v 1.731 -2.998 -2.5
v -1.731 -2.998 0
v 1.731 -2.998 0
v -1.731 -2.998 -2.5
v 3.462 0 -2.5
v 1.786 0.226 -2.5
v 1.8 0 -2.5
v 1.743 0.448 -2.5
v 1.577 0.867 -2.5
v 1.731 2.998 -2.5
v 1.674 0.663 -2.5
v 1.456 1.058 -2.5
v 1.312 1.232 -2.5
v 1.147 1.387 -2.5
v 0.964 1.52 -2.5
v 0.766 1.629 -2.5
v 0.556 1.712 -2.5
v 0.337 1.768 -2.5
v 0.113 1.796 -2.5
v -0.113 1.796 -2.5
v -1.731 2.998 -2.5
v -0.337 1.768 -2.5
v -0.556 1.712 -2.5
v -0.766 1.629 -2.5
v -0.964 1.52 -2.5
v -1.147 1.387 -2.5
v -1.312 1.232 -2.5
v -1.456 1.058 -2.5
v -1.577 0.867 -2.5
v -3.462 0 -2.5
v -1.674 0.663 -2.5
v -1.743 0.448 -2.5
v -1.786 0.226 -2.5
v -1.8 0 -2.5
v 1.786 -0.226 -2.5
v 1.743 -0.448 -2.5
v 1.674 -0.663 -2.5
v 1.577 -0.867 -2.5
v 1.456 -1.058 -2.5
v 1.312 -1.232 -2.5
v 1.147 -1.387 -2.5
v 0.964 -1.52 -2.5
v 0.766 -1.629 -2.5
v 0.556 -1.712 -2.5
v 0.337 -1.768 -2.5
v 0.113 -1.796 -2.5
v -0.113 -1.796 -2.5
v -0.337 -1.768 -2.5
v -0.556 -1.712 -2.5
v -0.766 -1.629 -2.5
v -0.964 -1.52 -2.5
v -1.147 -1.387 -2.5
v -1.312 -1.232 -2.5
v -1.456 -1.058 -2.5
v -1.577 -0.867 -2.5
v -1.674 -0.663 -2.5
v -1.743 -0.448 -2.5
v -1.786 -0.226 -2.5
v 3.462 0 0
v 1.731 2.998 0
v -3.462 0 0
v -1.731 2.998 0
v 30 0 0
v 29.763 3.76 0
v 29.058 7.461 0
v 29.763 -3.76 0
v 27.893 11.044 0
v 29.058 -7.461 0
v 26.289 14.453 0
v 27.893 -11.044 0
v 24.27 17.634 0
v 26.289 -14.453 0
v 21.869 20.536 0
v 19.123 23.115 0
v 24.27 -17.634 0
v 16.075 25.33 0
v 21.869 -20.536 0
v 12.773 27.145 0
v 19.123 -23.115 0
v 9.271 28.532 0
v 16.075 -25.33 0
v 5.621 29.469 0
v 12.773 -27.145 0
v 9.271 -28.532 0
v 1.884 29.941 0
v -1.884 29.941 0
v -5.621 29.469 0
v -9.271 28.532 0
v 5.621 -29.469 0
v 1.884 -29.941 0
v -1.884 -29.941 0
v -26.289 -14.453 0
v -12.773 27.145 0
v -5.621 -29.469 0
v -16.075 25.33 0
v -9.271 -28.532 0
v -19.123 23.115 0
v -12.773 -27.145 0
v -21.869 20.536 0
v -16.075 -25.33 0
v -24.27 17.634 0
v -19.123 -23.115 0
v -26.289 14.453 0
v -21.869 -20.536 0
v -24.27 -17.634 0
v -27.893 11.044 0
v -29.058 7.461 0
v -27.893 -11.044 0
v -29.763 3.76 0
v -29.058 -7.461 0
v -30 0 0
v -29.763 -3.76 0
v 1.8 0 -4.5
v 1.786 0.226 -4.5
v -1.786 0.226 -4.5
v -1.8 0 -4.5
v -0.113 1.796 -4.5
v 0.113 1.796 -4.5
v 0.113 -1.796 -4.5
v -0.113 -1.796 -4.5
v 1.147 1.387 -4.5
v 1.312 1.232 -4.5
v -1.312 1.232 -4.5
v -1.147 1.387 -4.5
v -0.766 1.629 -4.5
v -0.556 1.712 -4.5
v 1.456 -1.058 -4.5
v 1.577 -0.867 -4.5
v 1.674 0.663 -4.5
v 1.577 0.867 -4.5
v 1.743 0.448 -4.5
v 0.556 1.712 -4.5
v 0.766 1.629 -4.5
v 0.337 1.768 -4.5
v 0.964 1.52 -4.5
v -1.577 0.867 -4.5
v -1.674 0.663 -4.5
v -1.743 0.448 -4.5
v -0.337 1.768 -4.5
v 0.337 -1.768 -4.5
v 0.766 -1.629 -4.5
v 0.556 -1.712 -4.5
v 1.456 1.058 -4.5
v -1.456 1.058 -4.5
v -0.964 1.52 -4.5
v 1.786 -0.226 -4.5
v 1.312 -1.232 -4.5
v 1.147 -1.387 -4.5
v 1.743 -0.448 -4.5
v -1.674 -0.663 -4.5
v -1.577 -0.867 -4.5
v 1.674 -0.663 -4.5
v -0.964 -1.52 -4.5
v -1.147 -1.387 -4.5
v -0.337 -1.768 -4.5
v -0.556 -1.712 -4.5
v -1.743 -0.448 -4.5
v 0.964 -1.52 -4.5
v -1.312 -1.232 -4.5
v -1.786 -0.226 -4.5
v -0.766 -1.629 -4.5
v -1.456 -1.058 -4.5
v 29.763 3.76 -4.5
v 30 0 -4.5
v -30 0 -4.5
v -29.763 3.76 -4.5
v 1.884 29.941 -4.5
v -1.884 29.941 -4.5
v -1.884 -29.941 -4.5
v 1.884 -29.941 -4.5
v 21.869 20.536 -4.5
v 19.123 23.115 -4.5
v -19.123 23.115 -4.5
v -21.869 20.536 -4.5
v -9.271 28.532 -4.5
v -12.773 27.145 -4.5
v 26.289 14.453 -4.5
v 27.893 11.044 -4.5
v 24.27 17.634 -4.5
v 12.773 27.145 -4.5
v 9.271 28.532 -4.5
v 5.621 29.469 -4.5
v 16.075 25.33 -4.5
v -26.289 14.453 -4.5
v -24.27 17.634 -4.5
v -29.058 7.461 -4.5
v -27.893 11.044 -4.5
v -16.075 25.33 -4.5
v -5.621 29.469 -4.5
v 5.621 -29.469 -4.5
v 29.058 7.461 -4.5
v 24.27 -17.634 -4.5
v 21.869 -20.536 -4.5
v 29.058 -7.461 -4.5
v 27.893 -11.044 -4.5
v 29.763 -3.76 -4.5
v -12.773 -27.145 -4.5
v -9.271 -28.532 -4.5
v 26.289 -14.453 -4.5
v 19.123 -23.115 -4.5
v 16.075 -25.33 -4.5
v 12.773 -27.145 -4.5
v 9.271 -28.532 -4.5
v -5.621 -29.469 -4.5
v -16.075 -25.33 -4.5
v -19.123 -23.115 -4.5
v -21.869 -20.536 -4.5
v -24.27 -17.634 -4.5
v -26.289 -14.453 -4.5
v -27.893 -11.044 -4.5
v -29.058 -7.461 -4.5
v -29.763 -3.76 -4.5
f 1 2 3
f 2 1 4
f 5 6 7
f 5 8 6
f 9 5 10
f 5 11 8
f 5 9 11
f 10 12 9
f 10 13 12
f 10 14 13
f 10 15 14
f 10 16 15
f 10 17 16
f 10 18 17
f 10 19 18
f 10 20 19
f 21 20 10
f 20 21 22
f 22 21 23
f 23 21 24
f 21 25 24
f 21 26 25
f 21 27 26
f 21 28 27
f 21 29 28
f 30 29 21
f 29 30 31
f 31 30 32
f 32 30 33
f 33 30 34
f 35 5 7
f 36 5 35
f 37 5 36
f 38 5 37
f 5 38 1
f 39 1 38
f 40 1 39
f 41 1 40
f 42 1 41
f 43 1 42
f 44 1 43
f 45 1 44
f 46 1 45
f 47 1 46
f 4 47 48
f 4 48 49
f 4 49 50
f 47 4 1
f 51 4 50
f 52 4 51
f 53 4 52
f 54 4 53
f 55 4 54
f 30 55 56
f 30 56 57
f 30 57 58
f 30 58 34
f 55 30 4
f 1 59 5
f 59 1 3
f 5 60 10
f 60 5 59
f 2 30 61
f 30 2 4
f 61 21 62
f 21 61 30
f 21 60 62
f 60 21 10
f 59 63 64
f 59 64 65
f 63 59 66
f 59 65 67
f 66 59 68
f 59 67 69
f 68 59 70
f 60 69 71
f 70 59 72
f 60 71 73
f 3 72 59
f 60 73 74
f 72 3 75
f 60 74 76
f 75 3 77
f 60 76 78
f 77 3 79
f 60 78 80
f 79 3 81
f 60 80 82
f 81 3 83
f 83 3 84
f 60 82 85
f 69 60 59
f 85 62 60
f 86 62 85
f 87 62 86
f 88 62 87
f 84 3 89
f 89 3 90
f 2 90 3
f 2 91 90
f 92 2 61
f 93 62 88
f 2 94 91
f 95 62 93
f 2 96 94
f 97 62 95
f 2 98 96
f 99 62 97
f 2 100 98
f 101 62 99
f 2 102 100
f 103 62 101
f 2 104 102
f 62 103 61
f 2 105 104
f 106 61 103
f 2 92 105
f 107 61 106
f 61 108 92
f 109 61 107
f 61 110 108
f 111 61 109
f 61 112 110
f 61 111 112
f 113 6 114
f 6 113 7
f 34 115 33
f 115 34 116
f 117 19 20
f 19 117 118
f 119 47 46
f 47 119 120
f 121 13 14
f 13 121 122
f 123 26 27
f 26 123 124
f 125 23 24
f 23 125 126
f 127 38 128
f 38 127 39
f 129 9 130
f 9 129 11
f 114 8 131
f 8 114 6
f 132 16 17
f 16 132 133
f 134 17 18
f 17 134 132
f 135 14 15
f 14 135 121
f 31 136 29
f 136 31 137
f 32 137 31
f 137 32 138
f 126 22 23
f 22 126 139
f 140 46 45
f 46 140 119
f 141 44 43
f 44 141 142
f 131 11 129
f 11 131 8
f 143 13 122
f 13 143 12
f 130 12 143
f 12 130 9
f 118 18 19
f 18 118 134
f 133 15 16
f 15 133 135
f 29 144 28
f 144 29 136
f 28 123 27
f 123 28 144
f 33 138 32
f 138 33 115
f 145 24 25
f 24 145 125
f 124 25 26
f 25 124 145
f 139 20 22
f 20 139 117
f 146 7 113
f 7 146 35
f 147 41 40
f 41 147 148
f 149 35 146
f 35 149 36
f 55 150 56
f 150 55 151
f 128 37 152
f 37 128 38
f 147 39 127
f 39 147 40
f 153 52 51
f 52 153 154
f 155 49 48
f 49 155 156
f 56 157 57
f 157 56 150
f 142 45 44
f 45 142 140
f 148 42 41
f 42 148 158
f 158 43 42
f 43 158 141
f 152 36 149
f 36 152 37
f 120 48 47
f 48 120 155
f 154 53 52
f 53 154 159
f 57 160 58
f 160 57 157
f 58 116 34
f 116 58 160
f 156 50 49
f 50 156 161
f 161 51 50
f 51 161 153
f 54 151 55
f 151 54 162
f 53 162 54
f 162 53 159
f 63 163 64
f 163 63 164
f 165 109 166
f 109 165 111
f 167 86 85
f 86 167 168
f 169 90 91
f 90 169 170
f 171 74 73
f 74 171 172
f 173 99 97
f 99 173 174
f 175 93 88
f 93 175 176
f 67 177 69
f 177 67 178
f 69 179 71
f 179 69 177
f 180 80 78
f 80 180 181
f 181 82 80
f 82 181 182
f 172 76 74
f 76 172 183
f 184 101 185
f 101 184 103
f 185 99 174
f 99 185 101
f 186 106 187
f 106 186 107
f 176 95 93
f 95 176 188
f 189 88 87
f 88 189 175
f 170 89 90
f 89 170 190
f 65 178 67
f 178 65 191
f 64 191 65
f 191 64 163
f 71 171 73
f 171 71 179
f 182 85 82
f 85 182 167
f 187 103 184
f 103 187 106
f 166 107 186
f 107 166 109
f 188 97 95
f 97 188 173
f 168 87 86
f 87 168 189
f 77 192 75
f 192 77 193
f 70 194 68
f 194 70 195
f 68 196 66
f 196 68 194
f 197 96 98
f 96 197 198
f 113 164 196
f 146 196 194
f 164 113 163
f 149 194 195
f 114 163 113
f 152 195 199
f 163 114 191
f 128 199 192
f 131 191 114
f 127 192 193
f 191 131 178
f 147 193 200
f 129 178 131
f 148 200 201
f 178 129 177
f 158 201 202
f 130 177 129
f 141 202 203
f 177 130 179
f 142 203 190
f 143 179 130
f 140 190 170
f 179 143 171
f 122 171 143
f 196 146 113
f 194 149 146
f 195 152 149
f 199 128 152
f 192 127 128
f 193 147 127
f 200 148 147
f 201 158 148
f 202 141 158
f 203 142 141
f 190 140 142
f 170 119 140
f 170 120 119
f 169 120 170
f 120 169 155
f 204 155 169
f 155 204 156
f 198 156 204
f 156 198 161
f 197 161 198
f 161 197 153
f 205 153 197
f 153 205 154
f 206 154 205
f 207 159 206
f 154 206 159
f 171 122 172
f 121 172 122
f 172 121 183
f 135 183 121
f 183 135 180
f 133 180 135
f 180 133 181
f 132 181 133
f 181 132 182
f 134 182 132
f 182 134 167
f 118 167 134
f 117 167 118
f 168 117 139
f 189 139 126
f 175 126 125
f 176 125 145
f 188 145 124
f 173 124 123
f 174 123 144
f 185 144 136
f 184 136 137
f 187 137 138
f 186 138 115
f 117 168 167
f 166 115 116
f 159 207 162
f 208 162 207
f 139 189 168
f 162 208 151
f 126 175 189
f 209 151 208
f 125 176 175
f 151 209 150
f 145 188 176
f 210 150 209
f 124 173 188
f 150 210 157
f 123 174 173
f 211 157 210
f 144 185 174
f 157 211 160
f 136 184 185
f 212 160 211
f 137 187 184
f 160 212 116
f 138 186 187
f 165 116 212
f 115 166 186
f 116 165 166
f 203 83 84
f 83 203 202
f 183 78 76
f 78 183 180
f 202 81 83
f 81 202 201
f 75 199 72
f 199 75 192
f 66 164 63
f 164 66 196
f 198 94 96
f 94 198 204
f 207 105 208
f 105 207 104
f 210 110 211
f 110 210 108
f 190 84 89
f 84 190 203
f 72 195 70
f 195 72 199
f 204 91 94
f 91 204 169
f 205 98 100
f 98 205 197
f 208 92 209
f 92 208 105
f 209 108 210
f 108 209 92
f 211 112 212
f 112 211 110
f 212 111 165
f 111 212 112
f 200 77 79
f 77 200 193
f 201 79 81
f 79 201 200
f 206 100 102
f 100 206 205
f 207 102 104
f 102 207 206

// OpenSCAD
$fn = 50;

difference() {
	union() {
		translate(v = [0, 0, -4.5]) {
			cylinder(h = 4.5, r = 30.0);
		}
	}
	union() {
		translate(v = [0, 0, 0]) {
			rotate(a = [0, 0, 0]) {
				difference() {
					union() {
						translate(v = [0, 0, -2.5]) {
							linear_extrude(height = 2.5) {
								polygon(points = [[3.4619999999999997, 0.0], [1.7310000000000003, 2.9981799479017264], [-1.7309999999999992, 2.9981799479017264], [-3.4619999999999997, 4.2397272186481365e-16], [-1.7310000000000014, -2.998179947901726], [1.7309999999999977, -2.9981799479017277]]);
							}
						}
					}
					union();
				}
			}
		}
		#translate(v = [0, 0, -100.0]) {
			cylinder(h = 200, r = 1.8);
		}
	}
}
